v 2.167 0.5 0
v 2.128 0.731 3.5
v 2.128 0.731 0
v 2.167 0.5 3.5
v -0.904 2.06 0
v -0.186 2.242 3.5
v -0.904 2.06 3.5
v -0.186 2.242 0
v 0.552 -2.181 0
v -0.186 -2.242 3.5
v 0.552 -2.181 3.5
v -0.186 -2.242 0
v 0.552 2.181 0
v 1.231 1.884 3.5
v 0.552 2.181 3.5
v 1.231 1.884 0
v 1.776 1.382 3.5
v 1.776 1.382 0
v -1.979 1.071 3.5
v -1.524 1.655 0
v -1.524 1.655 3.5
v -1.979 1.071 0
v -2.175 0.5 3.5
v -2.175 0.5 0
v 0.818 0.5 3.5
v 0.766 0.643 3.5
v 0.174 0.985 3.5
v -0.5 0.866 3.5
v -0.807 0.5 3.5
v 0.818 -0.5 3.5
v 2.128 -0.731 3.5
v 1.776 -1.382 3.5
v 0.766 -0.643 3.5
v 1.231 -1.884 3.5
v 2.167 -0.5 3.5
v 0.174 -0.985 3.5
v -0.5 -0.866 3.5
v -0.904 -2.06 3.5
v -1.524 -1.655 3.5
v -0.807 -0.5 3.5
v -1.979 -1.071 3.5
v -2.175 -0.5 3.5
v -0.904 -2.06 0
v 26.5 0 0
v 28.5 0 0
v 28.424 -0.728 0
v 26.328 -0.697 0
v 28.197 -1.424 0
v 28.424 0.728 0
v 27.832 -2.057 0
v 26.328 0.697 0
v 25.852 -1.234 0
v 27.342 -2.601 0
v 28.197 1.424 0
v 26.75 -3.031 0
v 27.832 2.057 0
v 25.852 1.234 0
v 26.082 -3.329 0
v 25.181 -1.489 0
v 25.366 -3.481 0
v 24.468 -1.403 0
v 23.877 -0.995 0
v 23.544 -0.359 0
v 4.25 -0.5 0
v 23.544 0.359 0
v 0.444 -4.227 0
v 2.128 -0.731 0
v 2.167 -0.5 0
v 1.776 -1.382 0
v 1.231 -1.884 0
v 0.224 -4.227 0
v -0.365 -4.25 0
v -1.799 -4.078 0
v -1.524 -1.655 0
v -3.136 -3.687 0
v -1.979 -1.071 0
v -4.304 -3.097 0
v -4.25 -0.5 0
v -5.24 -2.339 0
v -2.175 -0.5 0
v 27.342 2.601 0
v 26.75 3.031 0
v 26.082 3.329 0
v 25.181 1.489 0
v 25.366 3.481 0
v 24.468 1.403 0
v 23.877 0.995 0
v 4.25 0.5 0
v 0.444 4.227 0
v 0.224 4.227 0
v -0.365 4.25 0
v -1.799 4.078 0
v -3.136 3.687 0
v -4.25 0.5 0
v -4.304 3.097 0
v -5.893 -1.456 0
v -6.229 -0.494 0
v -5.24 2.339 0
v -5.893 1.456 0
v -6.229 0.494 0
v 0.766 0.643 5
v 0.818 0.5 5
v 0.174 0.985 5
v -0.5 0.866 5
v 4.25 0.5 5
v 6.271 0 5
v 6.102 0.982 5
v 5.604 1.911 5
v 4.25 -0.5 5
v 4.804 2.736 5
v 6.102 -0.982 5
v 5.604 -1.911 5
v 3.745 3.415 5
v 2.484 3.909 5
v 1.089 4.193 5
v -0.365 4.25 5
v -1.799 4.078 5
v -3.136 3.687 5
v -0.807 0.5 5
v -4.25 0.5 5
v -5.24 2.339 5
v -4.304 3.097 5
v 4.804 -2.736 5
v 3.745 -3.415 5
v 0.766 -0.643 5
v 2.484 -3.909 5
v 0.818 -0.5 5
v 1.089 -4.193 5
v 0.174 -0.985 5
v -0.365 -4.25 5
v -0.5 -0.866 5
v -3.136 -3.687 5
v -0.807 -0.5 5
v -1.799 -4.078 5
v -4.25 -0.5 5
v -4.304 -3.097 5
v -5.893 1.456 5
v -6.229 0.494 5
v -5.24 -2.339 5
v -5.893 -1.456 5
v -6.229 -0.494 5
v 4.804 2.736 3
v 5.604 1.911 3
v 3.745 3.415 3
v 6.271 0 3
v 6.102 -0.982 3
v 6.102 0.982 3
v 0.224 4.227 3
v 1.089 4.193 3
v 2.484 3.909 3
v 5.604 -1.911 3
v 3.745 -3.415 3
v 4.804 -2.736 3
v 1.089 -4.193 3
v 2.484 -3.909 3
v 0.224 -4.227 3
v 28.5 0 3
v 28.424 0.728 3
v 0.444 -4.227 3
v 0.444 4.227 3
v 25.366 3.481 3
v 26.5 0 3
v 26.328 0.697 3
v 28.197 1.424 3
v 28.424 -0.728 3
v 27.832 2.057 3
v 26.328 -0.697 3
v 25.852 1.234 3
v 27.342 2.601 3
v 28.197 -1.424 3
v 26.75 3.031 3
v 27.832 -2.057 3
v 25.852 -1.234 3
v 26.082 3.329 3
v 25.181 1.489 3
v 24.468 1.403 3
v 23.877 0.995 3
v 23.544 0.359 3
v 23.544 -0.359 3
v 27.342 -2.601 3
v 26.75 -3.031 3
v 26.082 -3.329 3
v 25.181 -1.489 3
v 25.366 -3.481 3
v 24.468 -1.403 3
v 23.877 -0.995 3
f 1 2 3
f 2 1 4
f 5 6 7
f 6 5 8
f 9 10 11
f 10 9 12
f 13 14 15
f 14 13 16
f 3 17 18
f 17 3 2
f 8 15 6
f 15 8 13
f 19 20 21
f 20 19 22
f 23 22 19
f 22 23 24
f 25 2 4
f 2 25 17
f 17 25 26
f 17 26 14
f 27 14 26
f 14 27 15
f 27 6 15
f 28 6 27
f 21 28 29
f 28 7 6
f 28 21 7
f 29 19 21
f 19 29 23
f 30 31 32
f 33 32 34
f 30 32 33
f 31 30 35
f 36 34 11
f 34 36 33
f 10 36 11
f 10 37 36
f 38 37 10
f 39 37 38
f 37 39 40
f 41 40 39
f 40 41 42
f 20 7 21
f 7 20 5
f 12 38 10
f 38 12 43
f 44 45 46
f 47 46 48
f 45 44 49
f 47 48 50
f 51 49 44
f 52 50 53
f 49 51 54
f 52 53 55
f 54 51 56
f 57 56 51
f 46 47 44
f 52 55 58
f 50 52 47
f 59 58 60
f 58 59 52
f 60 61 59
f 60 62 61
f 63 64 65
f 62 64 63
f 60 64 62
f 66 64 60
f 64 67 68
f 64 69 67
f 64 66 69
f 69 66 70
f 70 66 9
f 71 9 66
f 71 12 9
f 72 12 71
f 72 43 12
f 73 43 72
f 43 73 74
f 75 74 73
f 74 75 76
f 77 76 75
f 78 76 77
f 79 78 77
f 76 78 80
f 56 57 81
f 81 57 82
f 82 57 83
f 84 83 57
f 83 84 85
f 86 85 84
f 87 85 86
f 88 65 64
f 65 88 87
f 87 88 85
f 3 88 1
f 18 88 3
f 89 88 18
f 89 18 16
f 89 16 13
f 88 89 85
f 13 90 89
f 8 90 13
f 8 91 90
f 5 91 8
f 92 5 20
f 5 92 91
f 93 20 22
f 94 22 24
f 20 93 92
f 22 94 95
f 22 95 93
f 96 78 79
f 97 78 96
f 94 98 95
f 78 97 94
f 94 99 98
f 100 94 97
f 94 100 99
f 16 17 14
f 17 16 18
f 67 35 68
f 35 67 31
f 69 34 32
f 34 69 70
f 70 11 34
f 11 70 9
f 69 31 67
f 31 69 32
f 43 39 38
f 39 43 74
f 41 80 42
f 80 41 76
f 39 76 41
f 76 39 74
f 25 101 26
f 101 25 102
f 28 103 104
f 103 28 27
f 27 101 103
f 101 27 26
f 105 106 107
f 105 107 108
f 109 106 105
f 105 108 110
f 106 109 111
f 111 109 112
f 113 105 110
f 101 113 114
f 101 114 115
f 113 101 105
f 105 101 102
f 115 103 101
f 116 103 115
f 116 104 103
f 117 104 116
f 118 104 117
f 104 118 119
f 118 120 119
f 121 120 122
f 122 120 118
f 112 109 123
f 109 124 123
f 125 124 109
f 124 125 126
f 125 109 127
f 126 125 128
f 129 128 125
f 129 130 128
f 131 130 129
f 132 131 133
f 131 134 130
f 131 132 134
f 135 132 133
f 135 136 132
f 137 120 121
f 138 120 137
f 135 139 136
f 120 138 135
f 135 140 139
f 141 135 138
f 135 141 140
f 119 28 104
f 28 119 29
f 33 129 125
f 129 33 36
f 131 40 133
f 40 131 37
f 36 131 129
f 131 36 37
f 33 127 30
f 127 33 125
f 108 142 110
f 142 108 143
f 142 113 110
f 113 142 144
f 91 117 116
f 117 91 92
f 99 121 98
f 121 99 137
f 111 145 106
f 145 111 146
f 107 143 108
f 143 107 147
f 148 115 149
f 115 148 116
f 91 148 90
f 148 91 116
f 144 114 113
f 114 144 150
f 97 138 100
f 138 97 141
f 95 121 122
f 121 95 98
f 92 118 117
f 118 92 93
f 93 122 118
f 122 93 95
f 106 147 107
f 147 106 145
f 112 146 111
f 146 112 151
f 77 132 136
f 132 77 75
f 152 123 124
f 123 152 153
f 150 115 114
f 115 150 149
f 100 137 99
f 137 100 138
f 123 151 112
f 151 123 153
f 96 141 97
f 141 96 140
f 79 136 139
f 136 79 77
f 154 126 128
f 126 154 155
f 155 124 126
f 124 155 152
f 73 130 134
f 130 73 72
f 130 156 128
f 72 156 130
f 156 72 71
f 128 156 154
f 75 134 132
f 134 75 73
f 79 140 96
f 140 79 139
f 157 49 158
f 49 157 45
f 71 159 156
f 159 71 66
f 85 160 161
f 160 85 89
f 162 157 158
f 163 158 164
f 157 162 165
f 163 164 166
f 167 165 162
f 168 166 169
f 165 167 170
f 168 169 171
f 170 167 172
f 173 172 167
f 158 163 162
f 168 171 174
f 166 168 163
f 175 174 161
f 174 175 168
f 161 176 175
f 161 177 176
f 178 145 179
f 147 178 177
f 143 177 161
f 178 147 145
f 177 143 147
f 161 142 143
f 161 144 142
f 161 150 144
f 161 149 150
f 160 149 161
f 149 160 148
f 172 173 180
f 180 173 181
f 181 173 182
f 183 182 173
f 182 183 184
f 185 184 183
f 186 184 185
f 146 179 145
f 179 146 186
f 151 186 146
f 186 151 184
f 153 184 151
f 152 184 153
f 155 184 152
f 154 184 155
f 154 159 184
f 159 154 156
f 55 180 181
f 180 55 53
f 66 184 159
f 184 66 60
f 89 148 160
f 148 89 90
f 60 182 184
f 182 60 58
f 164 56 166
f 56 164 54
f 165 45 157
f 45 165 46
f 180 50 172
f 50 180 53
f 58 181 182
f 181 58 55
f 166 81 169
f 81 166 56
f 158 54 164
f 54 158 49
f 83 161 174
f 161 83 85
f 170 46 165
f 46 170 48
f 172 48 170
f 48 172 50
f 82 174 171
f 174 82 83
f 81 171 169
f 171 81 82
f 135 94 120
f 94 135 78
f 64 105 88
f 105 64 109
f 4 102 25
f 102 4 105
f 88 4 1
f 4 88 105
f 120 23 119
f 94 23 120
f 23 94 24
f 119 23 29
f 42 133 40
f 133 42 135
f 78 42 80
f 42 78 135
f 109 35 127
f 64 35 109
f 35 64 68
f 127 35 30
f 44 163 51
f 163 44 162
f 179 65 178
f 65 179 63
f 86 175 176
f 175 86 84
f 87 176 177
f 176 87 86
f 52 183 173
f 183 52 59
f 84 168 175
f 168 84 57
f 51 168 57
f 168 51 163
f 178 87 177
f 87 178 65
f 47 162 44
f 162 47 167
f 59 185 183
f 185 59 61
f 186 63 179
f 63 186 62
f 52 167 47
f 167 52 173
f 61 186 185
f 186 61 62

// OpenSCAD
$fs=.75;

difference(){
	union() {
		union() {
			resize(newsize = [12.5000000000, 8.5000000000, 0]) {
				cylinder(d = 6.2500000000, h = 5);
			}
		}
		hull() {
			cylinder(h = 3, r = 4.2500000000);
			translate(v = [25, 0, 0]) {
				union() {
					cylinder(h = 3, r = 3.5000000000);
				}
			}
		}
		translate(v = [25, 0, 0]) {
			union() {
				cylinder(h = 3, r = 3.5000000000);
			}
		}
	}
	/* Holes Below*/
	union(){
		union(){
			union() {
				cylinder(d = 4.5000000000, h = 3.5000000000);
				cylinder(d = 2, h = 5);
			}
		}
		translate(v = [0, 0, 0]) {
			translate(v = [0.0000000000, 0, 2.5000000000]) {
				translate(v = [-4.2500000000, -0.5000000000, -2.5000000000]) {
					cube(size = [8.5000000000, 1, 5]);
				}
			}
		}
		hull(){
			translate(v = [25, 0, 0]){
				union(){
					cylinder(d = 3, h = 3);
				}
			}
		}
		translate(v = [25, 0, 0]){
			union(){
				cylinder(d = 3, h = 3);
			}
		}
	} /* End Holes */ 
}
/***********************************************
*********      SolidPython code:      **********
************************************************
 
from solid import *
from solid import extensions
from math import *

class Object:
    pass

servo = Object()
servo.shaft = Object()
servo.shaft.d = 4.5
servo.shaft.r = servo.shaft.d/2.
servo.shaft.h = 5
servoShaft = cylinder(d=servo.shaft.d,h=3.5)+cylinder(d=2,h=servo.shaft.h)

grip = Object()
grip.rx = servo.shaft.r+4
grip.ry = servo.shaft.r+2

hornGrip = ( cylinder(d=grip.rx, h=servo.shaft.h).resize([grip.rx*2,grip.ry*2,0])
	         - servoShaft.set_hole()
             - cube([2*grip.rx-4, 1, servo.shaft.h]).align('z-').move(x=0).set_hole()
       
           )

horn = Object()
horn.height = 3
horn.lenght = 25
horn.end = Object()
horn.end.hole = 3
horn.end.r = horn.end.hole/2.+2
hornEnd = ( cylinder(r=horn.end.r, h = horn.height)
	       - cylinder(d=horn.end.hole, h = horn.height).set_hole()).move(x=horn.lenght)

hornBody = hull(cylinder(r=grip.ry, h=horn.height), hornEnd)

scene = hornGrip + hornBody + hornEnd


scad_render_to_file(scene, 'preview.scad', '$fs=.75;')
 
 
************************************************/
